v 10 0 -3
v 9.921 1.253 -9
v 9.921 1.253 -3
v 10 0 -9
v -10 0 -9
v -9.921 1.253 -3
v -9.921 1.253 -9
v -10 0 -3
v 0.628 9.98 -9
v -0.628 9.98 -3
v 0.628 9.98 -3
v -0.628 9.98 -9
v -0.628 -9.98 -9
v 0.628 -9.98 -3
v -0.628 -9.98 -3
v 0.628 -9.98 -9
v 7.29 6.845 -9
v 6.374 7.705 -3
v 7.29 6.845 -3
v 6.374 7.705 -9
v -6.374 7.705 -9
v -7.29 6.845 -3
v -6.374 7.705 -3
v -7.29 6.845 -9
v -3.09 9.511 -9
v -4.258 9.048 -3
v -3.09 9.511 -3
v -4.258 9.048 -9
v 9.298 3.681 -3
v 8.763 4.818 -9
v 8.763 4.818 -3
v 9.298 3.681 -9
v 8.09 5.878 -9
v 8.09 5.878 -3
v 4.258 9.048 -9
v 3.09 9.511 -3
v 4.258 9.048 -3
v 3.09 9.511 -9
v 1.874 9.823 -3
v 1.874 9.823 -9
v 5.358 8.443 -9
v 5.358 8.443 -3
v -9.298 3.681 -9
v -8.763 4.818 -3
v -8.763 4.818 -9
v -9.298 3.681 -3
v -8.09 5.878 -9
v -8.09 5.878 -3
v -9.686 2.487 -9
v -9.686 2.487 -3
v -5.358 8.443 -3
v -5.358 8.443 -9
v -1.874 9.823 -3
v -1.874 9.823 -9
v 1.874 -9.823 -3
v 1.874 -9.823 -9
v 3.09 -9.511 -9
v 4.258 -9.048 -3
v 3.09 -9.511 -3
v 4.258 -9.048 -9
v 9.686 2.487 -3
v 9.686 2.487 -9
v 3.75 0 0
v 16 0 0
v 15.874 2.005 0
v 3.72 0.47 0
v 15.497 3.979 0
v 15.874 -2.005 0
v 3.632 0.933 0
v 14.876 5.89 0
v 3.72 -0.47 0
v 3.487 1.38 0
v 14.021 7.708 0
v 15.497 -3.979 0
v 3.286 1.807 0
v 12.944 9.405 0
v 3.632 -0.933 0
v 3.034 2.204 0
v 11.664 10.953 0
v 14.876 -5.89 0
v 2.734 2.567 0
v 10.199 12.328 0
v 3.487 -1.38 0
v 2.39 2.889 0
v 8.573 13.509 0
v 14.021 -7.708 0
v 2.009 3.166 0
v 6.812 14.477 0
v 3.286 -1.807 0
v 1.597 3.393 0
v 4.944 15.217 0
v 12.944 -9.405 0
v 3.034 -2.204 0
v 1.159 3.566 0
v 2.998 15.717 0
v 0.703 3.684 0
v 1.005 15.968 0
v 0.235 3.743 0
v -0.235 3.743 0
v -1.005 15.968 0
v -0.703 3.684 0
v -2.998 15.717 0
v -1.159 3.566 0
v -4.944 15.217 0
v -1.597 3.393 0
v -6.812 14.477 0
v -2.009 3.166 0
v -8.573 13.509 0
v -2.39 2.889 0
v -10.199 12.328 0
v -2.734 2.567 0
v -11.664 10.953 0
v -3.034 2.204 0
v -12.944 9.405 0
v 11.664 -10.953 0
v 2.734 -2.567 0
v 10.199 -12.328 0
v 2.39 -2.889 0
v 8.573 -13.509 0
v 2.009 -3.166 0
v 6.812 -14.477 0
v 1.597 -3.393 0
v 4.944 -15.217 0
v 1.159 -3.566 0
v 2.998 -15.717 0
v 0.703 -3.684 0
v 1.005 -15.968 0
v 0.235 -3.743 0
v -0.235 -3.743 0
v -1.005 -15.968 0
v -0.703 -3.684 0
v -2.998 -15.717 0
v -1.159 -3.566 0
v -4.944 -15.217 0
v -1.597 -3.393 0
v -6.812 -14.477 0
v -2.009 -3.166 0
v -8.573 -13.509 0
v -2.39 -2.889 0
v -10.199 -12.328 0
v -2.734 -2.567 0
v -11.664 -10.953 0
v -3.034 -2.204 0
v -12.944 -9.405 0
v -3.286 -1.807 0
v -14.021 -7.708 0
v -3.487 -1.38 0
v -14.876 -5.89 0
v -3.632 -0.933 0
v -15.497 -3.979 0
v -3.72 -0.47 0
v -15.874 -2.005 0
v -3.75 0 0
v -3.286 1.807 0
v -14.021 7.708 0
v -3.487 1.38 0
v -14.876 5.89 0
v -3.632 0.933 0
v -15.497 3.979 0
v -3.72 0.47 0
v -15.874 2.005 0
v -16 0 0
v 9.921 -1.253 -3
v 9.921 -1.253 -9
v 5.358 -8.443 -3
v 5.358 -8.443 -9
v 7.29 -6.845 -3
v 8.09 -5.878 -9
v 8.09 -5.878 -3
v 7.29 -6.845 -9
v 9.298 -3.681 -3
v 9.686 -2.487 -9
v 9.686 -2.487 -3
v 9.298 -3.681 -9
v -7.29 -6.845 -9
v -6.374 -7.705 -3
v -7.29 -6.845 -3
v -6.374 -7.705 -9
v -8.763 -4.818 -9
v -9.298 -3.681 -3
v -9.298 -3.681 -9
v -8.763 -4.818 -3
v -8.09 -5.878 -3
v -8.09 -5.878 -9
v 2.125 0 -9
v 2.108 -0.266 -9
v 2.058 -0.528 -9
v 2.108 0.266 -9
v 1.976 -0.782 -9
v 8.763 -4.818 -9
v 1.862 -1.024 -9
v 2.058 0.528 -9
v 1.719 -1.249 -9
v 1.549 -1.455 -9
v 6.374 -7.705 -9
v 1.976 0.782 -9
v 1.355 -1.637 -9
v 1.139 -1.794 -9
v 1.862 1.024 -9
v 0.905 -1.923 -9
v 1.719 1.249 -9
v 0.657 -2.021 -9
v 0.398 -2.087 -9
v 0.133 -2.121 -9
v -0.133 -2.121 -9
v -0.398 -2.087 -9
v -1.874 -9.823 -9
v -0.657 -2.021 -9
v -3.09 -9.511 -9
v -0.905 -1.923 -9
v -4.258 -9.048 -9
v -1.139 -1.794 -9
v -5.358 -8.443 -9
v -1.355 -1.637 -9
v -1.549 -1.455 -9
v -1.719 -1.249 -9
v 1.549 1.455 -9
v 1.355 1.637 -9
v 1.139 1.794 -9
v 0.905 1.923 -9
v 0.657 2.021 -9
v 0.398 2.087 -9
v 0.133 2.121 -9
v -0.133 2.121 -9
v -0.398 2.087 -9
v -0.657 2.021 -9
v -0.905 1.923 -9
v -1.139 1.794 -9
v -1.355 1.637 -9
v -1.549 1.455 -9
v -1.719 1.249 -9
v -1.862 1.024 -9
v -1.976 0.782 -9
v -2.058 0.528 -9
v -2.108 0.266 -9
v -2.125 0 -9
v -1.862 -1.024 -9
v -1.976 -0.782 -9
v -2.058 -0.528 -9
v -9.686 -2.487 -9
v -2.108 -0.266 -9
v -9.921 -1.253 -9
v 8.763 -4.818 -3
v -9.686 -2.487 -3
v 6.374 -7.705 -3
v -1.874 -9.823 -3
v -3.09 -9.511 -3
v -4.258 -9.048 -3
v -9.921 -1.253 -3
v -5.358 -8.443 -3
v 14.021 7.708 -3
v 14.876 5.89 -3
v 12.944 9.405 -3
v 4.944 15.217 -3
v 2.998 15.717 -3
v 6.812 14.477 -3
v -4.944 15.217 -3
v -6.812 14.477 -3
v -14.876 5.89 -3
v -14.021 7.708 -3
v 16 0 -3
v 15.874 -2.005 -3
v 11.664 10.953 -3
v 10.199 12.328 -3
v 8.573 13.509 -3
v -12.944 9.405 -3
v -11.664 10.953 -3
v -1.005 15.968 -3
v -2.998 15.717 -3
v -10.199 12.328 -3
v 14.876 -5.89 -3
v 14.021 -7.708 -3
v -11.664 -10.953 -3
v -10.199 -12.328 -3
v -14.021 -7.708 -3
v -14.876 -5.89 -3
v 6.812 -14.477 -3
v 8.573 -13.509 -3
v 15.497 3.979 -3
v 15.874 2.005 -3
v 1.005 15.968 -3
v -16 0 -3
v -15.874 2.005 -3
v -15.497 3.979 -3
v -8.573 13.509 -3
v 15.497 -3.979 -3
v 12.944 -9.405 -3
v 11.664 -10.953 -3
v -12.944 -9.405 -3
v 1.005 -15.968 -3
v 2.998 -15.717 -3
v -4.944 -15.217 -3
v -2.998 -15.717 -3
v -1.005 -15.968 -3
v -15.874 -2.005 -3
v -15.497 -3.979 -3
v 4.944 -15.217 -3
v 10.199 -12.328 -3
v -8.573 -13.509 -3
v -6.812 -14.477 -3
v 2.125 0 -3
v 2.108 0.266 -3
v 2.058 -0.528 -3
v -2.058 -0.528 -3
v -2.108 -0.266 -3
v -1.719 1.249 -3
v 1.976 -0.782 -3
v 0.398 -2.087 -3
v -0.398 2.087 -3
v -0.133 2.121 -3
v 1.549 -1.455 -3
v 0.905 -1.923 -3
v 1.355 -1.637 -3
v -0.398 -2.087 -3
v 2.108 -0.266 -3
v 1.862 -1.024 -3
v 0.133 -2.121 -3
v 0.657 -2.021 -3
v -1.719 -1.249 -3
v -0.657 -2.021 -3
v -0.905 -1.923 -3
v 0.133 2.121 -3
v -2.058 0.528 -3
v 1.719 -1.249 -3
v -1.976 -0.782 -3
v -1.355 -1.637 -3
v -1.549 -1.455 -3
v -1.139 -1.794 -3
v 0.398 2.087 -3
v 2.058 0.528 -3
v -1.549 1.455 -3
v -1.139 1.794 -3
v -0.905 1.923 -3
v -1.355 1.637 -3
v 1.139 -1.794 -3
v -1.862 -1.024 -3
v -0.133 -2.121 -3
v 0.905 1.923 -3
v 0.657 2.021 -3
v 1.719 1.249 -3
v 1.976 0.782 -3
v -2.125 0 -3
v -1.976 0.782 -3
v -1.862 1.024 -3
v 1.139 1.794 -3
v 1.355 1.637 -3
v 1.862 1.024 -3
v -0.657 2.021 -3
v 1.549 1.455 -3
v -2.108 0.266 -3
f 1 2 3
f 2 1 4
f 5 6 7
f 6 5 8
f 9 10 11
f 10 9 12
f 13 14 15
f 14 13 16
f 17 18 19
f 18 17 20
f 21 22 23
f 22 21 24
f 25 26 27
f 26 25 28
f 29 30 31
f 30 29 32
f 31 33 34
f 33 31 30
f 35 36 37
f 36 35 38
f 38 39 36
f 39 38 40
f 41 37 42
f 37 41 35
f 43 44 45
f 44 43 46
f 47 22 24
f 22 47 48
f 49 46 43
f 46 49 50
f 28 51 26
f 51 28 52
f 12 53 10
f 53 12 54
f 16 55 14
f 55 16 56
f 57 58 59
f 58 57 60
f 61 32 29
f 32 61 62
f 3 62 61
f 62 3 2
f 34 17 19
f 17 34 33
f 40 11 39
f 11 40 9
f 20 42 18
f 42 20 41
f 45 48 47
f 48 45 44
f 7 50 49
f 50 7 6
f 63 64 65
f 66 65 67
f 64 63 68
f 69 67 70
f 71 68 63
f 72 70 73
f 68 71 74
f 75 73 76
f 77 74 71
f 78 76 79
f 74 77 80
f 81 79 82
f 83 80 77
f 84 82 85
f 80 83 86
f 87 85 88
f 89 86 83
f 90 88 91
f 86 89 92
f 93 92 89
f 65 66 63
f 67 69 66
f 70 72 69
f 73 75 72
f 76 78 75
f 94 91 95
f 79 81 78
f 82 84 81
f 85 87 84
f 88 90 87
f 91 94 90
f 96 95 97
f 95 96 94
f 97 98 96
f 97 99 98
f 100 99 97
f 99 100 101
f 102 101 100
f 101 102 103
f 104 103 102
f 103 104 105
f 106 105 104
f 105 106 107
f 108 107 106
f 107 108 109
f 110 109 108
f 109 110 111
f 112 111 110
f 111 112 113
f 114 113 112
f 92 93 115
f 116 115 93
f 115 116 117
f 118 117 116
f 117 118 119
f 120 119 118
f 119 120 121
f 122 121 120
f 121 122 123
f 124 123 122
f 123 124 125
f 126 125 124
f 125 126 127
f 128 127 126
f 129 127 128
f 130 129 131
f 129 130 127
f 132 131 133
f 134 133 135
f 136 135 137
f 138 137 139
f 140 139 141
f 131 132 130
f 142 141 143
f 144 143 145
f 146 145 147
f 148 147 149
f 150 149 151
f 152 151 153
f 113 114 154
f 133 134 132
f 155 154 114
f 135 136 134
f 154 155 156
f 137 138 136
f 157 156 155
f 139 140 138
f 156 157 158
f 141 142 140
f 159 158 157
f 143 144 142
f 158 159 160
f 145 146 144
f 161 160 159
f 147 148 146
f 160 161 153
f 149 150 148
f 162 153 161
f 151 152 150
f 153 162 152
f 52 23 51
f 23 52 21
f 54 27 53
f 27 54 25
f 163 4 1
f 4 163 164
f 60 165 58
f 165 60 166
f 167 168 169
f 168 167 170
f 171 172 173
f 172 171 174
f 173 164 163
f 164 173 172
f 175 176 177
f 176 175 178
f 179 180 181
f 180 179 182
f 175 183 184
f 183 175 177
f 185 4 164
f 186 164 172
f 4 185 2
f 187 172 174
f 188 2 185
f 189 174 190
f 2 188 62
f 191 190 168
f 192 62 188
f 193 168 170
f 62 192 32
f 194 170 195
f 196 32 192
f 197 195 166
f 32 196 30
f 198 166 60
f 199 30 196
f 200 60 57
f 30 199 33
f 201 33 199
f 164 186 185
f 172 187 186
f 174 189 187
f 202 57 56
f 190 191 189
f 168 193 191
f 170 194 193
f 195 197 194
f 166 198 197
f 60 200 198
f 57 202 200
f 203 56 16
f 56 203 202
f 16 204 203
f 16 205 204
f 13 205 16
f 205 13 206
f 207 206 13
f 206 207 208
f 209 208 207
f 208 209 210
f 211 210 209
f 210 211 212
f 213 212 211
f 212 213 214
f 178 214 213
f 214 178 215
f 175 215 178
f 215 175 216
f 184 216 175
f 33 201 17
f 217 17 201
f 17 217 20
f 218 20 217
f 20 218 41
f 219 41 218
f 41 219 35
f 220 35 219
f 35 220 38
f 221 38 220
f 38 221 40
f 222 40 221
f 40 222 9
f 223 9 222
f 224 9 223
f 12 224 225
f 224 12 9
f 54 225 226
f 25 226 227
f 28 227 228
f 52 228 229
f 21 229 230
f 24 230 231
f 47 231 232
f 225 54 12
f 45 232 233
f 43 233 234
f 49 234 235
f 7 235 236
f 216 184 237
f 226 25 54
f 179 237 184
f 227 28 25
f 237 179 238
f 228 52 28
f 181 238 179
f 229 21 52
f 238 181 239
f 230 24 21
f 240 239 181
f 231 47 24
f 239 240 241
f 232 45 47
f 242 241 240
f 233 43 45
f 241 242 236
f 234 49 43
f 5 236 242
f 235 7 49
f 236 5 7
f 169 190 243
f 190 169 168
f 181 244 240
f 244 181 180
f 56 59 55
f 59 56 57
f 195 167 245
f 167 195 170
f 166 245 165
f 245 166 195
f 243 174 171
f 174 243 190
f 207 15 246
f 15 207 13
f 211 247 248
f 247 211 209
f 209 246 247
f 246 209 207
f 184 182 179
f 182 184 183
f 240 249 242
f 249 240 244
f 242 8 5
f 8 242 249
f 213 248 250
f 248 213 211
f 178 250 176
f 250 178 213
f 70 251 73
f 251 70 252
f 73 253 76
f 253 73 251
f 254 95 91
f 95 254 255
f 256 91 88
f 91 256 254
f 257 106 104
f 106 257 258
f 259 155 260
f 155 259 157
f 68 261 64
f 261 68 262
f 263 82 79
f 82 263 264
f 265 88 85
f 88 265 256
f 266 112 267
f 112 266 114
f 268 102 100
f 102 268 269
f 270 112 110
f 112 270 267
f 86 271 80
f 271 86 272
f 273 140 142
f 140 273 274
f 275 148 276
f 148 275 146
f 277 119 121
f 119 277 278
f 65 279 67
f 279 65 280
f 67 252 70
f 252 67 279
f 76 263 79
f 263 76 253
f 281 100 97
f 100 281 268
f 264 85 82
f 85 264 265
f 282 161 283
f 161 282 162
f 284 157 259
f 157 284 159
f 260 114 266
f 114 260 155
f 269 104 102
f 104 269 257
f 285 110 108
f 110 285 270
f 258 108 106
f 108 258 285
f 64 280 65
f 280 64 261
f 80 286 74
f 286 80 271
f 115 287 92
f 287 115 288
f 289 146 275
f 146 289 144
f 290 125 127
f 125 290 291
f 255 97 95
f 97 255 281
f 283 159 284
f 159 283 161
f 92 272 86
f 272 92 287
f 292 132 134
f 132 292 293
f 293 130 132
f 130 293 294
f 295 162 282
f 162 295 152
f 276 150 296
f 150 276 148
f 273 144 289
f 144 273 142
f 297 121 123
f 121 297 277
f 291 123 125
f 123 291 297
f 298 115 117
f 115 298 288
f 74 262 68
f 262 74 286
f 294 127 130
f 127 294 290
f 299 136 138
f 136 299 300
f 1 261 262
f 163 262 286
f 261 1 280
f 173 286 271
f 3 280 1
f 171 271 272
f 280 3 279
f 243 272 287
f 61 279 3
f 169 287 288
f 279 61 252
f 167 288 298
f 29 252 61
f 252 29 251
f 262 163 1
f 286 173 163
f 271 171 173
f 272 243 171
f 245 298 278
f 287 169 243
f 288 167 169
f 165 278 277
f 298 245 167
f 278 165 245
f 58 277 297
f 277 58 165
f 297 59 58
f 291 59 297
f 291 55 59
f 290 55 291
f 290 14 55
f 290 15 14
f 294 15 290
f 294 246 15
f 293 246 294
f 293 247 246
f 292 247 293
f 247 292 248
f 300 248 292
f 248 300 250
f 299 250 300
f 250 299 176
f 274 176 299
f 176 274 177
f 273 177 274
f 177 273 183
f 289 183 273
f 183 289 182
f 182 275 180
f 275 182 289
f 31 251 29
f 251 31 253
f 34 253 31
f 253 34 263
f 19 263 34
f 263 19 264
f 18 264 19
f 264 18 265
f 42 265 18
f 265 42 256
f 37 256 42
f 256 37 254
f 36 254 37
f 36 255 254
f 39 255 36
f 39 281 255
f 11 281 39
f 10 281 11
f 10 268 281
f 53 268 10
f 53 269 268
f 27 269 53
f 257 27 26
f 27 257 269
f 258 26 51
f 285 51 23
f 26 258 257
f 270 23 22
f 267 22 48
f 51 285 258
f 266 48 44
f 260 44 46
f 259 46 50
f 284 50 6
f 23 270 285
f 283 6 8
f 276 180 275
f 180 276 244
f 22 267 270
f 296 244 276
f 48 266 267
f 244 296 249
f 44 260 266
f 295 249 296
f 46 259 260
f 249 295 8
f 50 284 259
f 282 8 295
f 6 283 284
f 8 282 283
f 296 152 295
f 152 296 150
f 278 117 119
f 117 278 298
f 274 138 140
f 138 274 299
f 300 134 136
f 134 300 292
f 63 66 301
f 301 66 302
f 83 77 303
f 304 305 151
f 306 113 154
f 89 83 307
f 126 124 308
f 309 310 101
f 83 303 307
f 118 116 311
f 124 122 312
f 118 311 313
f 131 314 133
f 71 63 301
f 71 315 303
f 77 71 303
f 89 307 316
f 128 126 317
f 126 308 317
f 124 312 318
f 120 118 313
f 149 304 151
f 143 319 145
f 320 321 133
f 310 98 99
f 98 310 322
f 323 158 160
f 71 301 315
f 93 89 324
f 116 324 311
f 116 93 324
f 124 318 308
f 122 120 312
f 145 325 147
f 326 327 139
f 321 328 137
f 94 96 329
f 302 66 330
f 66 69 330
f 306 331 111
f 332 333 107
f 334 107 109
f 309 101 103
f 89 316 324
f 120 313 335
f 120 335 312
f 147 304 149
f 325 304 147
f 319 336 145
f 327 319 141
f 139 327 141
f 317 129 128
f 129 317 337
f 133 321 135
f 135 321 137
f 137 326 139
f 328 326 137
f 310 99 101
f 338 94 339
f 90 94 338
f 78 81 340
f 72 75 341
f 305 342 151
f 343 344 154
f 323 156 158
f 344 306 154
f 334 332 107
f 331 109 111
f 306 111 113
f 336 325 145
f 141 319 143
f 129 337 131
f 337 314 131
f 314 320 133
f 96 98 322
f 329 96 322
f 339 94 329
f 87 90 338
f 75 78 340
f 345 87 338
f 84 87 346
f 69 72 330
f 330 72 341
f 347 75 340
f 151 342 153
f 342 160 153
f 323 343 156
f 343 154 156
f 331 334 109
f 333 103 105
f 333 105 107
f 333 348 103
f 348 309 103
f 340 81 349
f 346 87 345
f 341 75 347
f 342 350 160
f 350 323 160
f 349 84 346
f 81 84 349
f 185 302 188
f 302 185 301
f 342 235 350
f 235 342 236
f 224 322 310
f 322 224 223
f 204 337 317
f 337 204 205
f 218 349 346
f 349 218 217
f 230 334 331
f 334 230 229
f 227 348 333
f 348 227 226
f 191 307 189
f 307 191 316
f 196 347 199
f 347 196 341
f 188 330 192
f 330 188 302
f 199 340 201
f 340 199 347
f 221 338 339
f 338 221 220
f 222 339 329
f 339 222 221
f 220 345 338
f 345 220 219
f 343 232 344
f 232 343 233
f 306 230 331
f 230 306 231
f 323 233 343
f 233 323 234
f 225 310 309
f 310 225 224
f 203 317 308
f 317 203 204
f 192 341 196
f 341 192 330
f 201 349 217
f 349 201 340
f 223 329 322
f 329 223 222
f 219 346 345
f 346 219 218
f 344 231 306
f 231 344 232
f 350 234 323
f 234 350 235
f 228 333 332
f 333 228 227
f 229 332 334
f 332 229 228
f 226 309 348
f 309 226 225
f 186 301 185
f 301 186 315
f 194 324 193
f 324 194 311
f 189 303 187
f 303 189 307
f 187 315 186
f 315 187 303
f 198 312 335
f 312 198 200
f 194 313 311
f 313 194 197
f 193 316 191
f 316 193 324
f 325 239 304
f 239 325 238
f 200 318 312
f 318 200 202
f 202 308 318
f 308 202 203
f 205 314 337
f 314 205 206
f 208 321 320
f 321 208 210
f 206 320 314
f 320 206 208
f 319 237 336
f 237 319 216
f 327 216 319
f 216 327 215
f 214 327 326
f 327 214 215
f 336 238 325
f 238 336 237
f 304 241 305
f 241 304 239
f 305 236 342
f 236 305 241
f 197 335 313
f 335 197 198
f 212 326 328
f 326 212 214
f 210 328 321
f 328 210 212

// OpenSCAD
$fn = 50;


difference() {
	union() {
		translate(v = [0, 0, -9.0000000000]) {
			cylinder(h = 9, r = 10.0000000000);
		}
		translate(v = [0, 0, -3.0000000000]) {
			cylinder(h = 3, r = 16.0000000000);
		}
	}
	union() {
		translate(v = [0, 0, 0]) {
			rotate(a = [0, 0, 0]) {
				difference() {
					union() {
						#translate(v = [0, 0, -9.0000000000]) {
							cylinder(h = 9, r = 2.0000000000);
						}
						#translate(v = [0, 0, -3]) {
							cylinder(h = 3, r = 10.0000000000, r1 = 2.1250000000, r2 = 3.7500000000);
						}
						#translate(v = [0, 0, -9.0000000000]) {
							cylinder(h = 9, r = 2.1250000000);
						}
						#translate(v = [0, 0, -9.0000000000]) {
							cylinder(h = 9, r = 2.0000000000);
						}
					}
					union();
				}
			}
		}
	}
}
